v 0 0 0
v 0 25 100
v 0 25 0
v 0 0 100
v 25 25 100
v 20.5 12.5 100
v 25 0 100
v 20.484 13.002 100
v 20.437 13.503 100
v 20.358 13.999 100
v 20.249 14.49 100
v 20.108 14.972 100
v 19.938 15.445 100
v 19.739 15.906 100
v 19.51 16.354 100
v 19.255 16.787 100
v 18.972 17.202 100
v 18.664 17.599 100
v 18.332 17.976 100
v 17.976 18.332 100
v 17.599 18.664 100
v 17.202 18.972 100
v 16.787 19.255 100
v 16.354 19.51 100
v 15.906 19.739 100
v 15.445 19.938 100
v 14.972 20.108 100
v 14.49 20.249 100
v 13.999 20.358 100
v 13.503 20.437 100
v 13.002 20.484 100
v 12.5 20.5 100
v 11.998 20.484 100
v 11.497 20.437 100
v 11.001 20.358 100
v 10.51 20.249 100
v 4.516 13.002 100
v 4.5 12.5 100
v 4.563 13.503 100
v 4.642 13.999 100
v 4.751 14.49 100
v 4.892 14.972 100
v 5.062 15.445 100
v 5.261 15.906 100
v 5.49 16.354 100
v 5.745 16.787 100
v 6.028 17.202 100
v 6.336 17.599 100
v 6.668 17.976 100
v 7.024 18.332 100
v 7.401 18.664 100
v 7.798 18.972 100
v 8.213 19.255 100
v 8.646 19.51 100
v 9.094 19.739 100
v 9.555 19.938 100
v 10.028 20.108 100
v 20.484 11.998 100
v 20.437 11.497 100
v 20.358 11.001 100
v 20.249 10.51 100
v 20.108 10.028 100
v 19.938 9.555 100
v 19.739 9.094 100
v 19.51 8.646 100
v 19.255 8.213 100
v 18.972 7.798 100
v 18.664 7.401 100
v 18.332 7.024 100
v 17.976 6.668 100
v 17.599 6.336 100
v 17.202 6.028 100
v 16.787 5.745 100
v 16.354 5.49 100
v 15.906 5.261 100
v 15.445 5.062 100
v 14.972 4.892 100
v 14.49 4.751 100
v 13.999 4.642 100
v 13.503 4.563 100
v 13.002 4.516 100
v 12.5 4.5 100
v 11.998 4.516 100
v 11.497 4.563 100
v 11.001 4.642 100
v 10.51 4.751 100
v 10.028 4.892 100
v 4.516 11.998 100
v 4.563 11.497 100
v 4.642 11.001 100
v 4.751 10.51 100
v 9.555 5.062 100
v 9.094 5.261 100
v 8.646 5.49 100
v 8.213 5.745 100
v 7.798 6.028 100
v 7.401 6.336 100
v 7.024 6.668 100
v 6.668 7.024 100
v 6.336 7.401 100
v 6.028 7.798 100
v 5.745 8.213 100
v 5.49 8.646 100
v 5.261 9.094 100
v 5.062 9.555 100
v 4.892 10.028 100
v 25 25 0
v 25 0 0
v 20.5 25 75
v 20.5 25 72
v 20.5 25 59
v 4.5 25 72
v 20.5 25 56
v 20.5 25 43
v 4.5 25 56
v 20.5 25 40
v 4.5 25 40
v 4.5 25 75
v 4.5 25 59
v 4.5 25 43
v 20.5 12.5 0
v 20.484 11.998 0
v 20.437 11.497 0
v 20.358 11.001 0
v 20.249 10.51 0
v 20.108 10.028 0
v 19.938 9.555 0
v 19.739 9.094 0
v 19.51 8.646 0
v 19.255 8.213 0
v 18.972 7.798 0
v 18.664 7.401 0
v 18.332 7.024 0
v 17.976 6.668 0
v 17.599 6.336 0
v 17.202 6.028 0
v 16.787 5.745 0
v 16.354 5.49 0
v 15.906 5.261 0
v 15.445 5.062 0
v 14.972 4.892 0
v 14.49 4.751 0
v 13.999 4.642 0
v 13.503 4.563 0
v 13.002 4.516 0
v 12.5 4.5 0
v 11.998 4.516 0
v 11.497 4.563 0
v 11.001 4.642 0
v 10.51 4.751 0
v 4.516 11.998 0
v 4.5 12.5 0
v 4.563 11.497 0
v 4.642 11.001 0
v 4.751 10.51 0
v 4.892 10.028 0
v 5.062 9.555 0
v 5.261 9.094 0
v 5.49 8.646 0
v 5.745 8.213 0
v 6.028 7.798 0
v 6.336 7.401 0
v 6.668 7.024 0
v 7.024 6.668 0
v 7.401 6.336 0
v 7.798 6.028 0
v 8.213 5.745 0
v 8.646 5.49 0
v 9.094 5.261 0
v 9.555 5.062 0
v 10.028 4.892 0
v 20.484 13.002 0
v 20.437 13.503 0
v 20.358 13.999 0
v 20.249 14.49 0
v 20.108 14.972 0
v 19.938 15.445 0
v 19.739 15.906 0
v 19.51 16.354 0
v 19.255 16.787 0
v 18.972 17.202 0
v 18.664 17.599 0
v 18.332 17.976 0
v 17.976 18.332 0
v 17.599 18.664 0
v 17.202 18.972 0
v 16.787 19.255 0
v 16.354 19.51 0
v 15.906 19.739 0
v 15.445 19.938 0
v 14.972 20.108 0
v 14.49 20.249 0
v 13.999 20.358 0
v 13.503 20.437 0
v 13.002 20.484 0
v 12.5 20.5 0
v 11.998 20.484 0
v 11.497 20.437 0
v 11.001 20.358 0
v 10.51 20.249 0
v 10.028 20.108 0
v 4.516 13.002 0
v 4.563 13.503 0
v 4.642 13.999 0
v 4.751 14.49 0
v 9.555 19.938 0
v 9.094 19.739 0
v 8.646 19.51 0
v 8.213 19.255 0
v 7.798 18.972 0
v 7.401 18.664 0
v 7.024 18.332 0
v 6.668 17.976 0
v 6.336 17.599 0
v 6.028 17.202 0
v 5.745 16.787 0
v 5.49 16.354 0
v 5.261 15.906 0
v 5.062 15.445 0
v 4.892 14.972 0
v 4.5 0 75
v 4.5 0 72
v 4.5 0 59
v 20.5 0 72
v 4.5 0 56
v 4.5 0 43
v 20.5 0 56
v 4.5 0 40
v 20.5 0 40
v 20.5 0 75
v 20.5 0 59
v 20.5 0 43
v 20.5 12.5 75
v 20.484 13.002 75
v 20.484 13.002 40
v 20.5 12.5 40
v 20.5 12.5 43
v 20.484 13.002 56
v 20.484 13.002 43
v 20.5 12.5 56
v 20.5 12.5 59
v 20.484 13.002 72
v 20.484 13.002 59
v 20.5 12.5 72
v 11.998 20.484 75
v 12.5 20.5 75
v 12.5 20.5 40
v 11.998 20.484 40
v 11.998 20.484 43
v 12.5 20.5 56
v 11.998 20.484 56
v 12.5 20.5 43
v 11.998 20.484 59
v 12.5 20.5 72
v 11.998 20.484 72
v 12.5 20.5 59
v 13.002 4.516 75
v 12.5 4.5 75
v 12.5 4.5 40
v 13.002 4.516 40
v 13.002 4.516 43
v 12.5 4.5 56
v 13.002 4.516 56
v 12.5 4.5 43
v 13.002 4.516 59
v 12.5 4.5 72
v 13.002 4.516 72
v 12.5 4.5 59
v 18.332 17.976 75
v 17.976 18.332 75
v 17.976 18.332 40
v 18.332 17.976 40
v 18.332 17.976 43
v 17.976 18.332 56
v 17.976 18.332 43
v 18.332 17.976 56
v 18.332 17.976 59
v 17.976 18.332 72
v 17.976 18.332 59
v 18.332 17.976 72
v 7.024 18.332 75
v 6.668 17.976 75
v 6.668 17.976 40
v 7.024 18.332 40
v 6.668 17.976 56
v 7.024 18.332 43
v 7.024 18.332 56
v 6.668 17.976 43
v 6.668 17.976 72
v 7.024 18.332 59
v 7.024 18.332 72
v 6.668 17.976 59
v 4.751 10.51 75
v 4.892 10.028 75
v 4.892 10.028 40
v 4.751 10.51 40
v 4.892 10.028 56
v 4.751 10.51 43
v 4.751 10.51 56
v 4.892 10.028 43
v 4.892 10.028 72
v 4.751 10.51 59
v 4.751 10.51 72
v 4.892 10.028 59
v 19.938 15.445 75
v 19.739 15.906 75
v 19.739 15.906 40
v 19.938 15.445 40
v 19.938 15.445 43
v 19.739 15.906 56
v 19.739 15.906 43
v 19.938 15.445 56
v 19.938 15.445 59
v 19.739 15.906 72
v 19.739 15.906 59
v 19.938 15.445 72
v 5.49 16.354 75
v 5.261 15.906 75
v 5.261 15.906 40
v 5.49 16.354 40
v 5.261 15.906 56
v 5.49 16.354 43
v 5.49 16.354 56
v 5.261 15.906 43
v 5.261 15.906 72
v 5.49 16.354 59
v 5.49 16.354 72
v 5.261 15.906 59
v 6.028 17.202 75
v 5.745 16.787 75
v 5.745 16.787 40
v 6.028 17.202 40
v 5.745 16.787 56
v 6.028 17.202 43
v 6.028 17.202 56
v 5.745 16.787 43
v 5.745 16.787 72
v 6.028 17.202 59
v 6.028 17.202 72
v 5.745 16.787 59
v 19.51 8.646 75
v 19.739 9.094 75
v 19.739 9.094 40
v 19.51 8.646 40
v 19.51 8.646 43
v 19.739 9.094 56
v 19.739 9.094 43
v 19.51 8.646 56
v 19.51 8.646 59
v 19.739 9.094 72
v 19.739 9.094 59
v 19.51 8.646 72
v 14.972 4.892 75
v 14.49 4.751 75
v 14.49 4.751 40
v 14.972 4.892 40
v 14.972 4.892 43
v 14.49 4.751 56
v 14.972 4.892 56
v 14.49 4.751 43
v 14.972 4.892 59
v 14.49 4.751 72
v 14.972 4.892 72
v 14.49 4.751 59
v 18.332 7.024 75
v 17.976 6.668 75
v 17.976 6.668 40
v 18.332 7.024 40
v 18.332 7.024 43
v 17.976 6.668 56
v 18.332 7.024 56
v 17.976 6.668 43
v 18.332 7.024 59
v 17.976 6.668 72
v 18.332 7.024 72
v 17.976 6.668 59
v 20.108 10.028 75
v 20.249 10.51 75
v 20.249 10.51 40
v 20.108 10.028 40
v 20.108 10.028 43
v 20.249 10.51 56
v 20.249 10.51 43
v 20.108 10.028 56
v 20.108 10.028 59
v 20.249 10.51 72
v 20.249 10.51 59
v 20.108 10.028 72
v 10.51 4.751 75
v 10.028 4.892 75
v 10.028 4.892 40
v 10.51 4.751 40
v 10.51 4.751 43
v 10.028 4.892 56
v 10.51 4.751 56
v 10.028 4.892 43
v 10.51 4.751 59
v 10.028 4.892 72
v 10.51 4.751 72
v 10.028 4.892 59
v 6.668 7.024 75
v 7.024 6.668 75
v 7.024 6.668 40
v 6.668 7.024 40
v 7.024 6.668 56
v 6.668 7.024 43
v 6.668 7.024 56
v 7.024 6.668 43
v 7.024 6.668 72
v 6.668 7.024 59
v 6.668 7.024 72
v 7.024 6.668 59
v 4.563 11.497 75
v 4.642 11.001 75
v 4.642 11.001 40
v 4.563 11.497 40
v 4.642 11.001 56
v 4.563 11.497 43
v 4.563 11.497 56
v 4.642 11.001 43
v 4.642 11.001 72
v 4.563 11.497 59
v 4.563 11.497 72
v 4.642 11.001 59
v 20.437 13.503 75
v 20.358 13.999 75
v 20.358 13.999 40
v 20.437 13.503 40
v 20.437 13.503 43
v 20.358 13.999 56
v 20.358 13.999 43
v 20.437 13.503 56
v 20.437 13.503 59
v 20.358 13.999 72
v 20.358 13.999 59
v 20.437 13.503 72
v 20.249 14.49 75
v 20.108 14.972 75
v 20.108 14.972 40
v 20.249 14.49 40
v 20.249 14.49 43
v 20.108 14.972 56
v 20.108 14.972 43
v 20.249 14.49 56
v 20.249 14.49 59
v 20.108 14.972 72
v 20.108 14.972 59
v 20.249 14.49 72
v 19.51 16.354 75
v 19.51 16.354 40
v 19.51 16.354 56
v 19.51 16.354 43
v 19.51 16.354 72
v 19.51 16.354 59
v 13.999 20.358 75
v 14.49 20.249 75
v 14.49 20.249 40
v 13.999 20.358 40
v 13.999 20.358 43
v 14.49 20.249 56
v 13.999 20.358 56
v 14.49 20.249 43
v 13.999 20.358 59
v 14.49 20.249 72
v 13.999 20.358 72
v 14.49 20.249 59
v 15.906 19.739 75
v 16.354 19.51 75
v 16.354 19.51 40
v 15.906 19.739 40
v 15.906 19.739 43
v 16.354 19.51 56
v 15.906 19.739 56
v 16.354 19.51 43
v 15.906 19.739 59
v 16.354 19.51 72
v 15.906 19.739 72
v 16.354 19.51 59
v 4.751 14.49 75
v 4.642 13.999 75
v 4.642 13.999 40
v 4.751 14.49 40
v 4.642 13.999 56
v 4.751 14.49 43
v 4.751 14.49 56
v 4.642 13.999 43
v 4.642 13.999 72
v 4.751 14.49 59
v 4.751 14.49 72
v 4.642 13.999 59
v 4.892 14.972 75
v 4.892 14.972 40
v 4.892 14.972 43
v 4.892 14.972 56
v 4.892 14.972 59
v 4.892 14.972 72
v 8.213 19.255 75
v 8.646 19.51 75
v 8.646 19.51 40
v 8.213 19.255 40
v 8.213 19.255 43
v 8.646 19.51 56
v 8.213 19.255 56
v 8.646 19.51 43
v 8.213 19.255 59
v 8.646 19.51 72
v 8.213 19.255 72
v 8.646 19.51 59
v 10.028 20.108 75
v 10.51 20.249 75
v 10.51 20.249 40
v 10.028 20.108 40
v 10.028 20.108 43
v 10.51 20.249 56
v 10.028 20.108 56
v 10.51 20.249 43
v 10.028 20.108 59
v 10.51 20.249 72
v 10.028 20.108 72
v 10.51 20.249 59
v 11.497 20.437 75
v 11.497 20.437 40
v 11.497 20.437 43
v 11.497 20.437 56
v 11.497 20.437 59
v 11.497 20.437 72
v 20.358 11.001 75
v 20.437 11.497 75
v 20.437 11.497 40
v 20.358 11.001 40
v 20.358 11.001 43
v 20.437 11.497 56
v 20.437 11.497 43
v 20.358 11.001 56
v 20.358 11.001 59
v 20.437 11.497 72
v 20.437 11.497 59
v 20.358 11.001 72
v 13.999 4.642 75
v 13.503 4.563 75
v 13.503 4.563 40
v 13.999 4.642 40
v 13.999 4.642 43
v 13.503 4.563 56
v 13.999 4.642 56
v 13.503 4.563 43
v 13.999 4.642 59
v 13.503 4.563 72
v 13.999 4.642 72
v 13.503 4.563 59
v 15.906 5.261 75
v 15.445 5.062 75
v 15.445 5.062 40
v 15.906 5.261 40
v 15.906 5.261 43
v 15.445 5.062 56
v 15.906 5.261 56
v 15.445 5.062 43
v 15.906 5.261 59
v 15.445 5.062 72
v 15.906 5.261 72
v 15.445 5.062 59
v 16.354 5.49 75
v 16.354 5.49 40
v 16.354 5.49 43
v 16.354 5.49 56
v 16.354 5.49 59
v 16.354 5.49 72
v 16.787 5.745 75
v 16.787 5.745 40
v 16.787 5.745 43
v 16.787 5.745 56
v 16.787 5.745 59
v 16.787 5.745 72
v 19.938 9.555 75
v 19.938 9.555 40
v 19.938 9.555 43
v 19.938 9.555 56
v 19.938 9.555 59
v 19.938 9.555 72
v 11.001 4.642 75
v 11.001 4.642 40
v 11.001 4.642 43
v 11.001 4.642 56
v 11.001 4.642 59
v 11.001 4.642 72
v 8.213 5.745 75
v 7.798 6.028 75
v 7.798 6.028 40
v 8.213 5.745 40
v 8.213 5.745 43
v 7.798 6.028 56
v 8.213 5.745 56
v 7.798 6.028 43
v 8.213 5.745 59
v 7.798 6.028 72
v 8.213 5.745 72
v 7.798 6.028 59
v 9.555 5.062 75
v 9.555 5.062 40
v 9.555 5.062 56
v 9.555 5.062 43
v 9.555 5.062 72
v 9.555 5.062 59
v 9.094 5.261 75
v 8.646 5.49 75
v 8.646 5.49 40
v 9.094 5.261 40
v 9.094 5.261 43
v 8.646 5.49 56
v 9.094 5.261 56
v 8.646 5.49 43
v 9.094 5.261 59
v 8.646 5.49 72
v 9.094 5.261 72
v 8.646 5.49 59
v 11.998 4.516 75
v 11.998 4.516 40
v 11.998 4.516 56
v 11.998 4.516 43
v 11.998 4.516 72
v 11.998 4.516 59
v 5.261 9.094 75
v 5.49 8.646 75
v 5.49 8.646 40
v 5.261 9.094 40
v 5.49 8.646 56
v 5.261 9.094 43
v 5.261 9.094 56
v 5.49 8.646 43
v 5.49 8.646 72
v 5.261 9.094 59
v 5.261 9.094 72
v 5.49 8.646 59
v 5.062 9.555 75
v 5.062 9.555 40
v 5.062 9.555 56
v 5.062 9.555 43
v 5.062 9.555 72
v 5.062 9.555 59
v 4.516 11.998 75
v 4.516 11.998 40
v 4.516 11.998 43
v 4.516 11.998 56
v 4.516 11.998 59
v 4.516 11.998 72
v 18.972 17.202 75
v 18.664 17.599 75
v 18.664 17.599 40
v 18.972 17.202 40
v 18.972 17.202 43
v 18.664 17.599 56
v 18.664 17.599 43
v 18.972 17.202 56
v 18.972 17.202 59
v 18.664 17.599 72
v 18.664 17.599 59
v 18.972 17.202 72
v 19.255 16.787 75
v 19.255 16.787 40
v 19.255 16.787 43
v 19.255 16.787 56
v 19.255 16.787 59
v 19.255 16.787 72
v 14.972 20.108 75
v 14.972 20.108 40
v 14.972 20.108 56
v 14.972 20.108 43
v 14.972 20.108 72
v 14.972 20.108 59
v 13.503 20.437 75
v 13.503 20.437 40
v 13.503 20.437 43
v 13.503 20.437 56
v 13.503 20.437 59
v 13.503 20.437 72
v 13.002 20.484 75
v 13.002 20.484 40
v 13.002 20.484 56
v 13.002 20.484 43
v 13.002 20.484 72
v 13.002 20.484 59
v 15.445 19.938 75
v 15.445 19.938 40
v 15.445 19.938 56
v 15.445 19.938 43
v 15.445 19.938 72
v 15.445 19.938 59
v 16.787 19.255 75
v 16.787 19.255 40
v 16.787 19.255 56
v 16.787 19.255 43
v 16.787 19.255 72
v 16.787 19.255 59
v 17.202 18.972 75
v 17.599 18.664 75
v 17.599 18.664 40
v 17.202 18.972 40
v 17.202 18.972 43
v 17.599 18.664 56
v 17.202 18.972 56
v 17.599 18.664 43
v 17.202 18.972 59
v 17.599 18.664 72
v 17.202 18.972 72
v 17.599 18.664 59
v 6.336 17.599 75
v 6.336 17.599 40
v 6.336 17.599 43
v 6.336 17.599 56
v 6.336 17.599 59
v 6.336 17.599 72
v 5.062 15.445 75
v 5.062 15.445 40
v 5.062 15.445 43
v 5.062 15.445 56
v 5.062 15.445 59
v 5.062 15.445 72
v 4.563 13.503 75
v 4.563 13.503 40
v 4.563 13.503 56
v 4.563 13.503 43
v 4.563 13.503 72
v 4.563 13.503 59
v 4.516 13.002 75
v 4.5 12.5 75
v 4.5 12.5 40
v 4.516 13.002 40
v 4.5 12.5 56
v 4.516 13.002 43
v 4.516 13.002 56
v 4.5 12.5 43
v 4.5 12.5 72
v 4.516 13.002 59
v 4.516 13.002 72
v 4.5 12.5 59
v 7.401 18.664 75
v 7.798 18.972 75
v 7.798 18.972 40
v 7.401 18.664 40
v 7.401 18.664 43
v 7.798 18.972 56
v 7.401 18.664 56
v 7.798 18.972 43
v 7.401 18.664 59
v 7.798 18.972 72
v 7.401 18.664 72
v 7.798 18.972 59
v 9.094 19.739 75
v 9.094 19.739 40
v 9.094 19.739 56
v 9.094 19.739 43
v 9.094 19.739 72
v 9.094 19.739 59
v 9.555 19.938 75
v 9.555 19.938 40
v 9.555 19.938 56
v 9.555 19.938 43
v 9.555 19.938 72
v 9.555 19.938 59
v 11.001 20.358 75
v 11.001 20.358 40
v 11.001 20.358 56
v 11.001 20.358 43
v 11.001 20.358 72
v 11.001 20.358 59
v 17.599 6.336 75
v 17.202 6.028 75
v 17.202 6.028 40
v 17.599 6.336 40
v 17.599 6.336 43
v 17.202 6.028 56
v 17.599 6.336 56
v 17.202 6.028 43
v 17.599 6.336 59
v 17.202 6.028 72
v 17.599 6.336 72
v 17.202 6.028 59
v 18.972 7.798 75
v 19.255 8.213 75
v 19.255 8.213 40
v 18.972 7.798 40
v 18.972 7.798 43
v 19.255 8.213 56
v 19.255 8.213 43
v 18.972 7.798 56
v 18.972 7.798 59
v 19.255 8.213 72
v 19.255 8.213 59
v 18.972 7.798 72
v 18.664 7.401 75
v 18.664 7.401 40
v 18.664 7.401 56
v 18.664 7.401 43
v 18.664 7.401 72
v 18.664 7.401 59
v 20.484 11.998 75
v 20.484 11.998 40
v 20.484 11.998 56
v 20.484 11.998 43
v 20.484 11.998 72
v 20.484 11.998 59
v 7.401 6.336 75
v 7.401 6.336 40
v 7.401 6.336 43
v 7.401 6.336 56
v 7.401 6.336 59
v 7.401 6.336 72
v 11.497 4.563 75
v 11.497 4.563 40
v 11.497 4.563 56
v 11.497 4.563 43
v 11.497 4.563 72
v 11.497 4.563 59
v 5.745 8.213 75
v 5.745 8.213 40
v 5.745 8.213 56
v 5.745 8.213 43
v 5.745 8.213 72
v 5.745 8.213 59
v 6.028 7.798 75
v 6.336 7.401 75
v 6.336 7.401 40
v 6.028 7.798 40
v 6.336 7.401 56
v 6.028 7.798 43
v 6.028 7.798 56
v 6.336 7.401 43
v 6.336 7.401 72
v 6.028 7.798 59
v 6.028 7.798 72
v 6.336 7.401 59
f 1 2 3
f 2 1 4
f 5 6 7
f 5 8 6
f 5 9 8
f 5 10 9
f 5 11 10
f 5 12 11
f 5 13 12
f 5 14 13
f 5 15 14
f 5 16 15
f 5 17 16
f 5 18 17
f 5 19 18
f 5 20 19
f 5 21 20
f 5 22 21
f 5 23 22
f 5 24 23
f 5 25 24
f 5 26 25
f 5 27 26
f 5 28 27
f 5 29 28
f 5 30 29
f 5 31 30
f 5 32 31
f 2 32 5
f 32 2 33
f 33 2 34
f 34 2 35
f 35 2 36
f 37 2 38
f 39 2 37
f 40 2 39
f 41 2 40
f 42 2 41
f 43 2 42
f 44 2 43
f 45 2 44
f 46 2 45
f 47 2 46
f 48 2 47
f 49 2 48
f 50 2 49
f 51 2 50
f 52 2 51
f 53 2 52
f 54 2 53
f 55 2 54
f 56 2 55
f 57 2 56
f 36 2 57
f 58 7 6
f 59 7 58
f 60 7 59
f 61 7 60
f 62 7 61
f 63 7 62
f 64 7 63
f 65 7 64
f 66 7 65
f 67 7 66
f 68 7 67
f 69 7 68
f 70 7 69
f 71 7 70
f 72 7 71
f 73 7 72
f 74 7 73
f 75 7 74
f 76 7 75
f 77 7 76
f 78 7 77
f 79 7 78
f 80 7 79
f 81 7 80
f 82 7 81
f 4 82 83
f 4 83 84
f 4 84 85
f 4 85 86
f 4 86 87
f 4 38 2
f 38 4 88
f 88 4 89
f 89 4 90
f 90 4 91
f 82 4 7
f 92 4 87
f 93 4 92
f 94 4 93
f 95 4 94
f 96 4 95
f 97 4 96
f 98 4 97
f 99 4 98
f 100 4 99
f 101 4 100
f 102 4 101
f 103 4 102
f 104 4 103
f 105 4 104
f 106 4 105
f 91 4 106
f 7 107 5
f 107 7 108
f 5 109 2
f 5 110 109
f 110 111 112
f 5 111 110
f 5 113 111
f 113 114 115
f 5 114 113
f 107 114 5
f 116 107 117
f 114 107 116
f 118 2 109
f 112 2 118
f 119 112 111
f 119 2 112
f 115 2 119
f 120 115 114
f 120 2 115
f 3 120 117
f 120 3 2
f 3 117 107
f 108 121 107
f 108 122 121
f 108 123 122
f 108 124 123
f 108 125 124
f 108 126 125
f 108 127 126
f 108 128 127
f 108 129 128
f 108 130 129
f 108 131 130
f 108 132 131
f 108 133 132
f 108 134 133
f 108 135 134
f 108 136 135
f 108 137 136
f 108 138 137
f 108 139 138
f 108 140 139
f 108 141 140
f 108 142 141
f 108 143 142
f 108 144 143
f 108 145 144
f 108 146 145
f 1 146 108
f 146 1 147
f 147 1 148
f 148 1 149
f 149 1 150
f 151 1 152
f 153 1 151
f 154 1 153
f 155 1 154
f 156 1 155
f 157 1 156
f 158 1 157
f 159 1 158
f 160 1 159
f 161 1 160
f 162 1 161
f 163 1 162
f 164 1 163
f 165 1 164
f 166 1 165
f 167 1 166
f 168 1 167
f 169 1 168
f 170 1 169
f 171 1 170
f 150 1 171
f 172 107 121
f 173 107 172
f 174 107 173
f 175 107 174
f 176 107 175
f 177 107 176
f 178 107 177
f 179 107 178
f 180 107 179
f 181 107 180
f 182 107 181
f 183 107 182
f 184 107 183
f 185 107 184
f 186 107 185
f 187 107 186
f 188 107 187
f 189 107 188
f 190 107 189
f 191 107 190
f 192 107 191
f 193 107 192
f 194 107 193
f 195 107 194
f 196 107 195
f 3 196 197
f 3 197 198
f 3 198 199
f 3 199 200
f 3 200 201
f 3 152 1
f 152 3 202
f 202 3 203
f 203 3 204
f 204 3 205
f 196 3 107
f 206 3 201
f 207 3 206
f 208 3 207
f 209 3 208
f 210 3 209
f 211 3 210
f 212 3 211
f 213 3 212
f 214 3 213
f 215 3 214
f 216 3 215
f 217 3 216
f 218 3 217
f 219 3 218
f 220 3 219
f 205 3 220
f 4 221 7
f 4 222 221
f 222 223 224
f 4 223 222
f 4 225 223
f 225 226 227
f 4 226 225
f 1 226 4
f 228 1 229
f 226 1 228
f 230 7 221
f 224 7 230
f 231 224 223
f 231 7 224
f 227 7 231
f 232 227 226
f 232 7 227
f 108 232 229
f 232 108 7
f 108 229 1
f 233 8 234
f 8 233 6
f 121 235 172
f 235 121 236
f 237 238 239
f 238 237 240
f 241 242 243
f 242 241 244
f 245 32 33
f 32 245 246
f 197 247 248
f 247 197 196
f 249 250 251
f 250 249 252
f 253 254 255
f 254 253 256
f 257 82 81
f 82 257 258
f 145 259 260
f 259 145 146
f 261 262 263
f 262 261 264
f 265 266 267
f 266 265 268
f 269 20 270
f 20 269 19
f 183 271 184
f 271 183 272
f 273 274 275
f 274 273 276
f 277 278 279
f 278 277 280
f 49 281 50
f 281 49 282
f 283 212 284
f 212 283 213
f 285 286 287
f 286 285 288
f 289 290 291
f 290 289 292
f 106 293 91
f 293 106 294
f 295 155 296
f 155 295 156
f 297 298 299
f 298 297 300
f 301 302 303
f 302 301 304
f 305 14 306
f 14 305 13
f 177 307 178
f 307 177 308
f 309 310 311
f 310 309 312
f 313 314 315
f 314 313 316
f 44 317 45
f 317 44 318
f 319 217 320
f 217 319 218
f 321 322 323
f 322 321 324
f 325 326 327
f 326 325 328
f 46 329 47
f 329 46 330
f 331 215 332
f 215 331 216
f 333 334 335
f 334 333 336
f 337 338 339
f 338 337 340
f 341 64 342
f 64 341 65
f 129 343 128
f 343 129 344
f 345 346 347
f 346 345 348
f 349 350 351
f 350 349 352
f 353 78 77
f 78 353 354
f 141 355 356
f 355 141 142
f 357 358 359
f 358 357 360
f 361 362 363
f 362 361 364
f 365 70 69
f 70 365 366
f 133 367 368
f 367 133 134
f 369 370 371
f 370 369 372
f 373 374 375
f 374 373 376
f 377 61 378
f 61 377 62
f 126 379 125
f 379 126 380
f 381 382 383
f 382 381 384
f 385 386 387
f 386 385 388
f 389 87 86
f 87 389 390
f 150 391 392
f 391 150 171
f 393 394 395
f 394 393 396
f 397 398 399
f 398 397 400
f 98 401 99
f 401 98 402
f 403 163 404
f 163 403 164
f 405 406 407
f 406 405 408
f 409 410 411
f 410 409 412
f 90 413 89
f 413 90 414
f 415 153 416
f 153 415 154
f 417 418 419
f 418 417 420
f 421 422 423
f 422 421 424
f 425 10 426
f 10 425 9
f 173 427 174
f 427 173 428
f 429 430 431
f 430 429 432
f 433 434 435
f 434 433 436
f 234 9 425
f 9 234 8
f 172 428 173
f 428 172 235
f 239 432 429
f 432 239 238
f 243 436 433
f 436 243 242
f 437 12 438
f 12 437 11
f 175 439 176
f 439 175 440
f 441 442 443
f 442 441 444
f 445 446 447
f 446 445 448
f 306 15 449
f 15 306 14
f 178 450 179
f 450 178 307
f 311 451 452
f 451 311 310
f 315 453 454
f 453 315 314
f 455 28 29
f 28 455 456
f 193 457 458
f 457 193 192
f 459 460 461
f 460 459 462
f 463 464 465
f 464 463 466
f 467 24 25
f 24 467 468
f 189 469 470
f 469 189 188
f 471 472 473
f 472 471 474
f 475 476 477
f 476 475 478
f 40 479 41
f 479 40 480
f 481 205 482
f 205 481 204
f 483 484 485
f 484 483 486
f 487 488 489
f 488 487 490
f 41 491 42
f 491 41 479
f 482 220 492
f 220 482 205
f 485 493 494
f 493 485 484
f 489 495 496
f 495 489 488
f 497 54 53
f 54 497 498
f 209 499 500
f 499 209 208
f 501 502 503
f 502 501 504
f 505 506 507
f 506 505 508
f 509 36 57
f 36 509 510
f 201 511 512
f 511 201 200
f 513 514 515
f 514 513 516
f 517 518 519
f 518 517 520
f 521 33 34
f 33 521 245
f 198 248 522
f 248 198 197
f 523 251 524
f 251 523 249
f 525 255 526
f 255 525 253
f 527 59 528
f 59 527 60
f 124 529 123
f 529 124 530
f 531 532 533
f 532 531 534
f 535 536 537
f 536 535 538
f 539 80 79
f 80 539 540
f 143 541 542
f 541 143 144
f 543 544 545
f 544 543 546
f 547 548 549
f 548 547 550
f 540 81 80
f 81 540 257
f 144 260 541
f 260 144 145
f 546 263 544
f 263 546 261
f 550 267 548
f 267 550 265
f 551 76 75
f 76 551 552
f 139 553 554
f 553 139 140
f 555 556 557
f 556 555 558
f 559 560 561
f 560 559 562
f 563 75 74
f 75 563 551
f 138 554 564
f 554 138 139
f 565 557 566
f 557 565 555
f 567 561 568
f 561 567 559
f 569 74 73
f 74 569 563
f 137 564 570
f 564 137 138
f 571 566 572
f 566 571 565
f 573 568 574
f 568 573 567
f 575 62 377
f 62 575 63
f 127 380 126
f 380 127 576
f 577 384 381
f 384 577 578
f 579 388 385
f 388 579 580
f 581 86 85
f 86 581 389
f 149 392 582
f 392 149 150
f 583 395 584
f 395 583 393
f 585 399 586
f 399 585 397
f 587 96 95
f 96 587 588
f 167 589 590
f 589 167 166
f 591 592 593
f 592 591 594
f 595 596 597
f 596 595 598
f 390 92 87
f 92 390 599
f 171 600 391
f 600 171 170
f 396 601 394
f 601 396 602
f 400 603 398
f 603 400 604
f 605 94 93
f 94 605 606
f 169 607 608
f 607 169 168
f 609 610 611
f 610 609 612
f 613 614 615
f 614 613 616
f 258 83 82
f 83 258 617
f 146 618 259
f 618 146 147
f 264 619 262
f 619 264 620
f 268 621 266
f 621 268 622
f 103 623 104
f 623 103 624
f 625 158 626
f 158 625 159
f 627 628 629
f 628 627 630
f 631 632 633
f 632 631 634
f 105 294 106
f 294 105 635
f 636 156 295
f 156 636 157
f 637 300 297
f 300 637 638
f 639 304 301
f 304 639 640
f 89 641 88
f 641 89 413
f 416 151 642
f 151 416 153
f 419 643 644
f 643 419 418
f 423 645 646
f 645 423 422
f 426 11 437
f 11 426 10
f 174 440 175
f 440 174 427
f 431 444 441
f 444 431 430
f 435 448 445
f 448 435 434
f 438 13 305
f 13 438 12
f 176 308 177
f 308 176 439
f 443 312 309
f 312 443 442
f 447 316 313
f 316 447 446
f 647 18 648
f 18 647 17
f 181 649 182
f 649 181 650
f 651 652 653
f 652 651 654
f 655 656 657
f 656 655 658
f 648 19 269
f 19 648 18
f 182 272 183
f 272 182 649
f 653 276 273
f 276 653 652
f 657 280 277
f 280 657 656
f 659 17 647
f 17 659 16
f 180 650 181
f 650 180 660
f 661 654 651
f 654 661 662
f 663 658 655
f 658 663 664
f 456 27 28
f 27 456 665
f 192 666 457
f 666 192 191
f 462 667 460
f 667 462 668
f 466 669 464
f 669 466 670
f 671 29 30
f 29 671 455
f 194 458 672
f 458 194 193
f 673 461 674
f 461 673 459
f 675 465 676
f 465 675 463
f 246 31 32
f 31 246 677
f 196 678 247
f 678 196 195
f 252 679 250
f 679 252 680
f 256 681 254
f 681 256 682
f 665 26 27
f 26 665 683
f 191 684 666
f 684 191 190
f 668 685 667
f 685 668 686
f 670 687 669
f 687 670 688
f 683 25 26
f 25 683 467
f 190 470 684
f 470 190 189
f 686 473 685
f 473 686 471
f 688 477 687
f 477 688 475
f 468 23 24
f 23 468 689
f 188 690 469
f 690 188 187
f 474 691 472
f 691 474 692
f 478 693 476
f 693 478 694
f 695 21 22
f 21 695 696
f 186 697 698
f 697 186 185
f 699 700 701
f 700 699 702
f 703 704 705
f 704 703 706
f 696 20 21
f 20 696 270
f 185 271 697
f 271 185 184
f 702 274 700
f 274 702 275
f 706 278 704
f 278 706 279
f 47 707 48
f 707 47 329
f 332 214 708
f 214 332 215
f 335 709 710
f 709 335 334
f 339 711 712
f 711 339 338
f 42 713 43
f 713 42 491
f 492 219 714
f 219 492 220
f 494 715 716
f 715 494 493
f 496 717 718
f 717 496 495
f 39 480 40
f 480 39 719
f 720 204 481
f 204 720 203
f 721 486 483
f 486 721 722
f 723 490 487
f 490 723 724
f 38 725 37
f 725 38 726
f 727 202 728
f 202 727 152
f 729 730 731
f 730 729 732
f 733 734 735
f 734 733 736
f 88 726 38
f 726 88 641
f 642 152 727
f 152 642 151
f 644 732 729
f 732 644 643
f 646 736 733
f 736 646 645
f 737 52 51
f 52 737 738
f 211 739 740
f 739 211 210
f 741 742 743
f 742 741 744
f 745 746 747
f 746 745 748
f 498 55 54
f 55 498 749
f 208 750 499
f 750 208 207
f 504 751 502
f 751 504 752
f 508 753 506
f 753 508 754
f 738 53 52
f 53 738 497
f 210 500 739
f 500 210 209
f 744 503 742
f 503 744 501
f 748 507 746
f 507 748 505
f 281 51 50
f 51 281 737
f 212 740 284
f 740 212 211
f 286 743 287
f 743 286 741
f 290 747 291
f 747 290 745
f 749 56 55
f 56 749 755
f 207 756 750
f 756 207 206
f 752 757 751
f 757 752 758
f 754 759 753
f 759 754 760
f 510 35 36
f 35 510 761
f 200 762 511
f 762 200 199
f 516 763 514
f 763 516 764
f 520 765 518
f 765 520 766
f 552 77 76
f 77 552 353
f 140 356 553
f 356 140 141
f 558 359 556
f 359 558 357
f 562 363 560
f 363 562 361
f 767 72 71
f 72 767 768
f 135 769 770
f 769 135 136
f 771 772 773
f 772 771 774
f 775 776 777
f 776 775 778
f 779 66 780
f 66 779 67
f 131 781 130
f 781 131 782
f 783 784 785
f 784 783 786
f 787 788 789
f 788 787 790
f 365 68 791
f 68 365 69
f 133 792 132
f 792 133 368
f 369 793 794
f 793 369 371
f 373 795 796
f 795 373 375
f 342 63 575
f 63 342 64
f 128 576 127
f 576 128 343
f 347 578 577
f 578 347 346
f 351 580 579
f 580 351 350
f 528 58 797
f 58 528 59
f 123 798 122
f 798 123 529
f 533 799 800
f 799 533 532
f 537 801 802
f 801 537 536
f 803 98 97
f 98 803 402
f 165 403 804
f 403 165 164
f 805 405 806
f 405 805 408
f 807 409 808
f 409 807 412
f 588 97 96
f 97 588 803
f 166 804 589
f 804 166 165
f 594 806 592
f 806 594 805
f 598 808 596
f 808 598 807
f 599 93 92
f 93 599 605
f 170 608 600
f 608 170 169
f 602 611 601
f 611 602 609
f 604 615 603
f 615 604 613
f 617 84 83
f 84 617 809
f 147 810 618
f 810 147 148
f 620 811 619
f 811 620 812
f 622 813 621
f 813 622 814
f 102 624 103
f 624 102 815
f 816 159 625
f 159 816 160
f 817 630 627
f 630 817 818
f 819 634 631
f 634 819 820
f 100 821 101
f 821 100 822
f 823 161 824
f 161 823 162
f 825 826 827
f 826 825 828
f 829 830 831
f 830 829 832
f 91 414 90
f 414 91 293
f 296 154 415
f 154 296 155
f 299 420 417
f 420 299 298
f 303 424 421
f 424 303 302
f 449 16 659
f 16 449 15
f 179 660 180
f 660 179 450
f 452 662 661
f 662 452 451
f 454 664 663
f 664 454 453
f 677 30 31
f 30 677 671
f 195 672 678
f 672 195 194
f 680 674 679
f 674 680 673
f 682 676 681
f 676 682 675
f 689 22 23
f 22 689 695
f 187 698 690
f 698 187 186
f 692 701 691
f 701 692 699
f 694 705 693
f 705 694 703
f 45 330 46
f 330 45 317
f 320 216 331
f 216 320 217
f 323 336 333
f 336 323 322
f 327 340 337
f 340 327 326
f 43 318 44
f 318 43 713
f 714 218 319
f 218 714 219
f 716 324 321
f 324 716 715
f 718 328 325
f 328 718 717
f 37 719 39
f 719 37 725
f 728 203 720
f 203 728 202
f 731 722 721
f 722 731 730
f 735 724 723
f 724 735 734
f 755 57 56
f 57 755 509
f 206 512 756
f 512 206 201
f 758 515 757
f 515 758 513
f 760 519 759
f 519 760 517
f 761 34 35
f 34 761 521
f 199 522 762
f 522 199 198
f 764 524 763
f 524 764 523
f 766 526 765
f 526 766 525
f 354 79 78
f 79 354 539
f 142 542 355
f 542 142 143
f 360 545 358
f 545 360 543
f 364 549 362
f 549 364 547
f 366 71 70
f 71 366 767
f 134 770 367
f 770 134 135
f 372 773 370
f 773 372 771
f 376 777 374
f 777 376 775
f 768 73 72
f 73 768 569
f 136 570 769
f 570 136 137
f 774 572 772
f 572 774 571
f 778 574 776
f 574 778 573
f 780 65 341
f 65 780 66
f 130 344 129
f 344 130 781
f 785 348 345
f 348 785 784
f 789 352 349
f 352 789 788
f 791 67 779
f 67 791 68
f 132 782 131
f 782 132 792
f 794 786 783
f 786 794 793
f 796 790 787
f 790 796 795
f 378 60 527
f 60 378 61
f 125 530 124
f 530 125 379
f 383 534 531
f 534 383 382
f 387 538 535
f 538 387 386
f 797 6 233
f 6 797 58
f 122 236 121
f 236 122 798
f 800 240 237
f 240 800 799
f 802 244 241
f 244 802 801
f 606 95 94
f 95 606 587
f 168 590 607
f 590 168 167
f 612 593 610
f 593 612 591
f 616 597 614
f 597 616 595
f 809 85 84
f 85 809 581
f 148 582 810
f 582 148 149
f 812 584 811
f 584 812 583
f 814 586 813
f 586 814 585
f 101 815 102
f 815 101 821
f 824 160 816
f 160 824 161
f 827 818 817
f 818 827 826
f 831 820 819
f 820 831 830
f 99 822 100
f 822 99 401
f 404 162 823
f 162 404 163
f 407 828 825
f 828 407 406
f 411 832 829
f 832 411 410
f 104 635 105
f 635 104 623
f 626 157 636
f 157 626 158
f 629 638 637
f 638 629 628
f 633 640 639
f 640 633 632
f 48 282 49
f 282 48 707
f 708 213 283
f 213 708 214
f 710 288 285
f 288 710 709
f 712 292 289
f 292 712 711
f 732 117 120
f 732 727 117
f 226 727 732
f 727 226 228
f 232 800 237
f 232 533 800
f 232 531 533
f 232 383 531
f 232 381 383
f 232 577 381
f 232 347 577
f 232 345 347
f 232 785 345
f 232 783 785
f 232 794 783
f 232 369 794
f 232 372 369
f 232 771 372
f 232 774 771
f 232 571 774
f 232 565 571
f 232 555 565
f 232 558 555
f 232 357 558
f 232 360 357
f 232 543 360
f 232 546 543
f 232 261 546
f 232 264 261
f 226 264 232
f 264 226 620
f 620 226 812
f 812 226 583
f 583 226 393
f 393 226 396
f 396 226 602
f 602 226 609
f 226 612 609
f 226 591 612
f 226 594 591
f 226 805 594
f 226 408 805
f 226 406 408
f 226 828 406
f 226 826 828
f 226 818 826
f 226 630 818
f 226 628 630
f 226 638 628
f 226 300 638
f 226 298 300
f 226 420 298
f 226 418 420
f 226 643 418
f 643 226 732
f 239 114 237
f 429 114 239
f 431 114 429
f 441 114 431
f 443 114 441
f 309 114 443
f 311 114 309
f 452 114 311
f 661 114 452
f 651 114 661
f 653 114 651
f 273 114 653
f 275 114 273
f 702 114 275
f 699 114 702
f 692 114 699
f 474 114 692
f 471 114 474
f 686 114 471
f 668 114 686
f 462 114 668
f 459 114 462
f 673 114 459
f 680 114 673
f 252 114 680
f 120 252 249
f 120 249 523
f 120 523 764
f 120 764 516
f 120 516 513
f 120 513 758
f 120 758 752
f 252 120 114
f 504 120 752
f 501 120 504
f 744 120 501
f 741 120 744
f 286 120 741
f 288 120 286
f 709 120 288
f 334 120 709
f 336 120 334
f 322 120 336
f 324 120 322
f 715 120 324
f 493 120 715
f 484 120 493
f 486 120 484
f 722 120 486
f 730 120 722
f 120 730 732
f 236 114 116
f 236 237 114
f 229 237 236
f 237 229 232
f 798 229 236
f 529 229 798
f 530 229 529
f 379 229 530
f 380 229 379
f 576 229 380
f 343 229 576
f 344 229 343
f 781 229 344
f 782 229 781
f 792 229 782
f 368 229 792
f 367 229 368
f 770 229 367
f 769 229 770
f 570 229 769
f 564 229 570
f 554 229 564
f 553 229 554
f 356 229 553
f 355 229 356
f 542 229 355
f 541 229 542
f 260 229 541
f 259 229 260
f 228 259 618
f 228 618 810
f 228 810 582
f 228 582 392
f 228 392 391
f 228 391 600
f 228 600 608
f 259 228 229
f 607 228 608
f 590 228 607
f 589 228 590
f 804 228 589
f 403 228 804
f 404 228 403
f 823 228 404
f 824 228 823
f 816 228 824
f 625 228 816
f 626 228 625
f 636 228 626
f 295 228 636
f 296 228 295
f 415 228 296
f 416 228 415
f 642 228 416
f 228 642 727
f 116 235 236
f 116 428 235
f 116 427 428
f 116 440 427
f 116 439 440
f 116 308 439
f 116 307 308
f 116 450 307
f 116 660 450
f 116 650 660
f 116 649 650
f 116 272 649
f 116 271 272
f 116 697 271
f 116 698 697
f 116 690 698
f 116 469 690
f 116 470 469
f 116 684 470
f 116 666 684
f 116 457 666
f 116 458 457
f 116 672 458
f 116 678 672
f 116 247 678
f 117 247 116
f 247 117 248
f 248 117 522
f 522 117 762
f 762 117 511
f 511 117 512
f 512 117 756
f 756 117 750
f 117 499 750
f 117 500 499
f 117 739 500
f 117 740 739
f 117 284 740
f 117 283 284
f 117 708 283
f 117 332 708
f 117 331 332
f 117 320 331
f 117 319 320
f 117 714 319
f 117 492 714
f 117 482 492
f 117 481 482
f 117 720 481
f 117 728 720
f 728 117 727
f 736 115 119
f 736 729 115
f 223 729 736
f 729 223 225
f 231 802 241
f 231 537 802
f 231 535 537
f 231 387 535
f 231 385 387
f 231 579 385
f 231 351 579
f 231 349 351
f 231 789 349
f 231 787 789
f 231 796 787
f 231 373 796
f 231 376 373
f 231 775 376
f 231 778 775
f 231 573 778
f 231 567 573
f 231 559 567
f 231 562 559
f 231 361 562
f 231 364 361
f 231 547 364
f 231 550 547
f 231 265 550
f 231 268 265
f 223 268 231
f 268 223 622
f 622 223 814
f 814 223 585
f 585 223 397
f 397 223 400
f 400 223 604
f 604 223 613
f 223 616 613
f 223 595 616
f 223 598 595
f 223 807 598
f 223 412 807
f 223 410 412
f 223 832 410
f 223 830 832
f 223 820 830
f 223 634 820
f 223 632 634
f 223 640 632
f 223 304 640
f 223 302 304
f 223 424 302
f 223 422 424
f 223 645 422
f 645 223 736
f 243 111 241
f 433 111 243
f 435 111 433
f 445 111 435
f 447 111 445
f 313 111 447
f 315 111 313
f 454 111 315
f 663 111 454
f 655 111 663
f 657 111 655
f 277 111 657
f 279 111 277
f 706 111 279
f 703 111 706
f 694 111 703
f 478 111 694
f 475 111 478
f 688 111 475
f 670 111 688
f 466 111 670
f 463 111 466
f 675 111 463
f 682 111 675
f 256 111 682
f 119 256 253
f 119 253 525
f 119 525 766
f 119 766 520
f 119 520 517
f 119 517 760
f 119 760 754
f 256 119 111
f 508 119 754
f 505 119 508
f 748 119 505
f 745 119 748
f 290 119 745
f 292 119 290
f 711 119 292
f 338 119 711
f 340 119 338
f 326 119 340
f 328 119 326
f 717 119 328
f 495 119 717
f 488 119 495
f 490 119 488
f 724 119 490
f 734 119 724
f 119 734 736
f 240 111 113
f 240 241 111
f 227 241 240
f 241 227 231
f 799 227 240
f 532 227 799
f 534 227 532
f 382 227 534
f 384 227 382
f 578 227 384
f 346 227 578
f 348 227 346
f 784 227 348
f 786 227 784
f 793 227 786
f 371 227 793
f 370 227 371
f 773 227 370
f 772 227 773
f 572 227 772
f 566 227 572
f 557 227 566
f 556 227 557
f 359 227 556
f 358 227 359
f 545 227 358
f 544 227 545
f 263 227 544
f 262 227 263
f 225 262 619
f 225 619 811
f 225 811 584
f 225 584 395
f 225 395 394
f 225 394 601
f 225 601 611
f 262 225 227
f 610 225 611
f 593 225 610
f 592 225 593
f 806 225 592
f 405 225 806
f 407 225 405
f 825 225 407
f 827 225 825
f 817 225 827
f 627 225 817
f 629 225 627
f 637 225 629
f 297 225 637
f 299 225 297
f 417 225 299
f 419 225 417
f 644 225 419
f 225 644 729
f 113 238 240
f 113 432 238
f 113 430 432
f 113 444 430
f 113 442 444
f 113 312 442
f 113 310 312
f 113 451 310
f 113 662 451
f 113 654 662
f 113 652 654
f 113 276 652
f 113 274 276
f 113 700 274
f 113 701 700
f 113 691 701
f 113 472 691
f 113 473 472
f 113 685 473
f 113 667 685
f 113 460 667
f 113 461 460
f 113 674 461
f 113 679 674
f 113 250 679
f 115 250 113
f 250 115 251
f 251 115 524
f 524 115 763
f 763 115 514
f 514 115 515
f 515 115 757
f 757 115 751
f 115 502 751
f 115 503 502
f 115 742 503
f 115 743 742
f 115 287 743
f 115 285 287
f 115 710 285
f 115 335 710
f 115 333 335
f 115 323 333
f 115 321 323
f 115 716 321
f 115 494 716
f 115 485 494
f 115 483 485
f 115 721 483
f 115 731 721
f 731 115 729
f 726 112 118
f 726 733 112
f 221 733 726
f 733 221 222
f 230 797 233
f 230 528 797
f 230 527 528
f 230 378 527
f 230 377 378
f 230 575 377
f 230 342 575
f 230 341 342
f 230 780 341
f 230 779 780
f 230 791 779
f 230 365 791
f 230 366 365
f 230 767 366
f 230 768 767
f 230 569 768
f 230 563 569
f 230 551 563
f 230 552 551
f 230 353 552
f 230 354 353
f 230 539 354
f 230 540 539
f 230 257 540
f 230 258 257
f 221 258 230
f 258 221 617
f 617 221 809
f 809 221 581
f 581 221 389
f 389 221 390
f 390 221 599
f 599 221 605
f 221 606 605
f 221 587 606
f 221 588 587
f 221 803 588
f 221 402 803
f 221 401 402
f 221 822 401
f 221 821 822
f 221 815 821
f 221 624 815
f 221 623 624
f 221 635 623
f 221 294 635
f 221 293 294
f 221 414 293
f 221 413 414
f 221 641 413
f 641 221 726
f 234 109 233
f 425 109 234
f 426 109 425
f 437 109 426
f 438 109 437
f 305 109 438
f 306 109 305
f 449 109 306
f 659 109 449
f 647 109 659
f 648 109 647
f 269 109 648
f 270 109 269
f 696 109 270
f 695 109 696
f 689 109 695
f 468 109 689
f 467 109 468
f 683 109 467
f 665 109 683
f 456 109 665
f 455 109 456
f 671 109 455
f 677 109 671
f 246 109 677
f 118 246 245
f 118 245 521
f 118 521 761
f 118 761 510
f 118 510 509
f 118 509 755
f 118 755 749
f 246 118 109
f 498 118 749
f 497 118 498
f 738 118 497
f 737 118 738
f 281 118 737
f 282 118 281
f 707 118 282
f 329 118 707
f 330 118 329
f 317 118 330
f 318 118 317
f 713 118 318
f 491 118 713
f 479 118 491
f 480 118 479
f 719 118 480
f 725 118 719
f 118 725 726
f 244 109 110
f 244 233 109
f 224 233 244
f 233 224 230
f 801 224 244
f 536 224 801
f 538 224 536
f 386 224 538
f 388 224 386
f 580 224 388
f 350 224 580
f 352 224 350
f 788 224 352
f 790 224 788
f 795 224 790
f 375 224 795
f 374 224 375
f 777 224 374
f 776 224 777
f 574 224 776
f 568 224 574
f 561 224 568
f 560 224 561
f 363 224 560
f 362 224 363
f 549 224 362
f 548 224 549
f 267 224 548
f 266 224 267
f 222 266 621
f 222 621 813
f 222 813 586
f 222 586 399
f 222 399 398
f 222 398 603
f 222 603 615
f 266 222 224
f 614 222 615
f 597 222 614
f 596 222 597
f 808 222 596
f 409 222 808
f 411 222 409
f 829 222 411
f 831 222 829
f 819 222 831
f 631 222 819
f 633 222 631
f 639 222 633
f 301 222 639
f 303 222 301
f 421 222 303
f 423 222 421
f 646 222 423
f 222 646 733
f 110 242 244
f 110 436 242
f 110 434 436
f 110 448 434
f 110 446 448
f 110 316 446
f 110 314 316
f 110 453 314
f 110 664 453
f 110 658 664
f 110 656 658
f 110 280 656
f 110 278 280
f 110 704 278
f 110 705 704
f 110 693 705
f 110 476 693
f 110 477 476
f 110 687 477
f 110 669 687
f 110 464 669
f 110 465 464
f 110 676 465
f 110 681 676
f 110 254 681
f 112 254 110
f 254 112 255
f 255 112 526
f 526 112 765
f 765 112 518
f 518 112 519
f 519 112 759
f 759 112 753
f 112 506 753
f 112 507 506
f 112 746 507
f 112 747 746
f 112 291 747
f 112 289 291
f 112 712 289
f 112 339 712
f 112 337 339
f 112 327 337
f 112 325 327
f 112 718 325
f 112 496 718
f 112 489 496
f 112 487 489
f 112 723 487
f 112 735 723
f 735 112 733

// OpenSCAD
difference() {
    
    cube([25, 25, 100]);
    translate([12.5, 12.5, 40])
    cylinder(h = 140, r = 8, center = true, $fn=100);
    
    translate([4.5, -1, 40])
    cube([16, 30, 3]);
    
    translate([4.5, -1, 56])
    cube([16, 30, 3]);
    
    translate([4.5, -1, 72])
    cube([16, 30, 3]);
    
}
